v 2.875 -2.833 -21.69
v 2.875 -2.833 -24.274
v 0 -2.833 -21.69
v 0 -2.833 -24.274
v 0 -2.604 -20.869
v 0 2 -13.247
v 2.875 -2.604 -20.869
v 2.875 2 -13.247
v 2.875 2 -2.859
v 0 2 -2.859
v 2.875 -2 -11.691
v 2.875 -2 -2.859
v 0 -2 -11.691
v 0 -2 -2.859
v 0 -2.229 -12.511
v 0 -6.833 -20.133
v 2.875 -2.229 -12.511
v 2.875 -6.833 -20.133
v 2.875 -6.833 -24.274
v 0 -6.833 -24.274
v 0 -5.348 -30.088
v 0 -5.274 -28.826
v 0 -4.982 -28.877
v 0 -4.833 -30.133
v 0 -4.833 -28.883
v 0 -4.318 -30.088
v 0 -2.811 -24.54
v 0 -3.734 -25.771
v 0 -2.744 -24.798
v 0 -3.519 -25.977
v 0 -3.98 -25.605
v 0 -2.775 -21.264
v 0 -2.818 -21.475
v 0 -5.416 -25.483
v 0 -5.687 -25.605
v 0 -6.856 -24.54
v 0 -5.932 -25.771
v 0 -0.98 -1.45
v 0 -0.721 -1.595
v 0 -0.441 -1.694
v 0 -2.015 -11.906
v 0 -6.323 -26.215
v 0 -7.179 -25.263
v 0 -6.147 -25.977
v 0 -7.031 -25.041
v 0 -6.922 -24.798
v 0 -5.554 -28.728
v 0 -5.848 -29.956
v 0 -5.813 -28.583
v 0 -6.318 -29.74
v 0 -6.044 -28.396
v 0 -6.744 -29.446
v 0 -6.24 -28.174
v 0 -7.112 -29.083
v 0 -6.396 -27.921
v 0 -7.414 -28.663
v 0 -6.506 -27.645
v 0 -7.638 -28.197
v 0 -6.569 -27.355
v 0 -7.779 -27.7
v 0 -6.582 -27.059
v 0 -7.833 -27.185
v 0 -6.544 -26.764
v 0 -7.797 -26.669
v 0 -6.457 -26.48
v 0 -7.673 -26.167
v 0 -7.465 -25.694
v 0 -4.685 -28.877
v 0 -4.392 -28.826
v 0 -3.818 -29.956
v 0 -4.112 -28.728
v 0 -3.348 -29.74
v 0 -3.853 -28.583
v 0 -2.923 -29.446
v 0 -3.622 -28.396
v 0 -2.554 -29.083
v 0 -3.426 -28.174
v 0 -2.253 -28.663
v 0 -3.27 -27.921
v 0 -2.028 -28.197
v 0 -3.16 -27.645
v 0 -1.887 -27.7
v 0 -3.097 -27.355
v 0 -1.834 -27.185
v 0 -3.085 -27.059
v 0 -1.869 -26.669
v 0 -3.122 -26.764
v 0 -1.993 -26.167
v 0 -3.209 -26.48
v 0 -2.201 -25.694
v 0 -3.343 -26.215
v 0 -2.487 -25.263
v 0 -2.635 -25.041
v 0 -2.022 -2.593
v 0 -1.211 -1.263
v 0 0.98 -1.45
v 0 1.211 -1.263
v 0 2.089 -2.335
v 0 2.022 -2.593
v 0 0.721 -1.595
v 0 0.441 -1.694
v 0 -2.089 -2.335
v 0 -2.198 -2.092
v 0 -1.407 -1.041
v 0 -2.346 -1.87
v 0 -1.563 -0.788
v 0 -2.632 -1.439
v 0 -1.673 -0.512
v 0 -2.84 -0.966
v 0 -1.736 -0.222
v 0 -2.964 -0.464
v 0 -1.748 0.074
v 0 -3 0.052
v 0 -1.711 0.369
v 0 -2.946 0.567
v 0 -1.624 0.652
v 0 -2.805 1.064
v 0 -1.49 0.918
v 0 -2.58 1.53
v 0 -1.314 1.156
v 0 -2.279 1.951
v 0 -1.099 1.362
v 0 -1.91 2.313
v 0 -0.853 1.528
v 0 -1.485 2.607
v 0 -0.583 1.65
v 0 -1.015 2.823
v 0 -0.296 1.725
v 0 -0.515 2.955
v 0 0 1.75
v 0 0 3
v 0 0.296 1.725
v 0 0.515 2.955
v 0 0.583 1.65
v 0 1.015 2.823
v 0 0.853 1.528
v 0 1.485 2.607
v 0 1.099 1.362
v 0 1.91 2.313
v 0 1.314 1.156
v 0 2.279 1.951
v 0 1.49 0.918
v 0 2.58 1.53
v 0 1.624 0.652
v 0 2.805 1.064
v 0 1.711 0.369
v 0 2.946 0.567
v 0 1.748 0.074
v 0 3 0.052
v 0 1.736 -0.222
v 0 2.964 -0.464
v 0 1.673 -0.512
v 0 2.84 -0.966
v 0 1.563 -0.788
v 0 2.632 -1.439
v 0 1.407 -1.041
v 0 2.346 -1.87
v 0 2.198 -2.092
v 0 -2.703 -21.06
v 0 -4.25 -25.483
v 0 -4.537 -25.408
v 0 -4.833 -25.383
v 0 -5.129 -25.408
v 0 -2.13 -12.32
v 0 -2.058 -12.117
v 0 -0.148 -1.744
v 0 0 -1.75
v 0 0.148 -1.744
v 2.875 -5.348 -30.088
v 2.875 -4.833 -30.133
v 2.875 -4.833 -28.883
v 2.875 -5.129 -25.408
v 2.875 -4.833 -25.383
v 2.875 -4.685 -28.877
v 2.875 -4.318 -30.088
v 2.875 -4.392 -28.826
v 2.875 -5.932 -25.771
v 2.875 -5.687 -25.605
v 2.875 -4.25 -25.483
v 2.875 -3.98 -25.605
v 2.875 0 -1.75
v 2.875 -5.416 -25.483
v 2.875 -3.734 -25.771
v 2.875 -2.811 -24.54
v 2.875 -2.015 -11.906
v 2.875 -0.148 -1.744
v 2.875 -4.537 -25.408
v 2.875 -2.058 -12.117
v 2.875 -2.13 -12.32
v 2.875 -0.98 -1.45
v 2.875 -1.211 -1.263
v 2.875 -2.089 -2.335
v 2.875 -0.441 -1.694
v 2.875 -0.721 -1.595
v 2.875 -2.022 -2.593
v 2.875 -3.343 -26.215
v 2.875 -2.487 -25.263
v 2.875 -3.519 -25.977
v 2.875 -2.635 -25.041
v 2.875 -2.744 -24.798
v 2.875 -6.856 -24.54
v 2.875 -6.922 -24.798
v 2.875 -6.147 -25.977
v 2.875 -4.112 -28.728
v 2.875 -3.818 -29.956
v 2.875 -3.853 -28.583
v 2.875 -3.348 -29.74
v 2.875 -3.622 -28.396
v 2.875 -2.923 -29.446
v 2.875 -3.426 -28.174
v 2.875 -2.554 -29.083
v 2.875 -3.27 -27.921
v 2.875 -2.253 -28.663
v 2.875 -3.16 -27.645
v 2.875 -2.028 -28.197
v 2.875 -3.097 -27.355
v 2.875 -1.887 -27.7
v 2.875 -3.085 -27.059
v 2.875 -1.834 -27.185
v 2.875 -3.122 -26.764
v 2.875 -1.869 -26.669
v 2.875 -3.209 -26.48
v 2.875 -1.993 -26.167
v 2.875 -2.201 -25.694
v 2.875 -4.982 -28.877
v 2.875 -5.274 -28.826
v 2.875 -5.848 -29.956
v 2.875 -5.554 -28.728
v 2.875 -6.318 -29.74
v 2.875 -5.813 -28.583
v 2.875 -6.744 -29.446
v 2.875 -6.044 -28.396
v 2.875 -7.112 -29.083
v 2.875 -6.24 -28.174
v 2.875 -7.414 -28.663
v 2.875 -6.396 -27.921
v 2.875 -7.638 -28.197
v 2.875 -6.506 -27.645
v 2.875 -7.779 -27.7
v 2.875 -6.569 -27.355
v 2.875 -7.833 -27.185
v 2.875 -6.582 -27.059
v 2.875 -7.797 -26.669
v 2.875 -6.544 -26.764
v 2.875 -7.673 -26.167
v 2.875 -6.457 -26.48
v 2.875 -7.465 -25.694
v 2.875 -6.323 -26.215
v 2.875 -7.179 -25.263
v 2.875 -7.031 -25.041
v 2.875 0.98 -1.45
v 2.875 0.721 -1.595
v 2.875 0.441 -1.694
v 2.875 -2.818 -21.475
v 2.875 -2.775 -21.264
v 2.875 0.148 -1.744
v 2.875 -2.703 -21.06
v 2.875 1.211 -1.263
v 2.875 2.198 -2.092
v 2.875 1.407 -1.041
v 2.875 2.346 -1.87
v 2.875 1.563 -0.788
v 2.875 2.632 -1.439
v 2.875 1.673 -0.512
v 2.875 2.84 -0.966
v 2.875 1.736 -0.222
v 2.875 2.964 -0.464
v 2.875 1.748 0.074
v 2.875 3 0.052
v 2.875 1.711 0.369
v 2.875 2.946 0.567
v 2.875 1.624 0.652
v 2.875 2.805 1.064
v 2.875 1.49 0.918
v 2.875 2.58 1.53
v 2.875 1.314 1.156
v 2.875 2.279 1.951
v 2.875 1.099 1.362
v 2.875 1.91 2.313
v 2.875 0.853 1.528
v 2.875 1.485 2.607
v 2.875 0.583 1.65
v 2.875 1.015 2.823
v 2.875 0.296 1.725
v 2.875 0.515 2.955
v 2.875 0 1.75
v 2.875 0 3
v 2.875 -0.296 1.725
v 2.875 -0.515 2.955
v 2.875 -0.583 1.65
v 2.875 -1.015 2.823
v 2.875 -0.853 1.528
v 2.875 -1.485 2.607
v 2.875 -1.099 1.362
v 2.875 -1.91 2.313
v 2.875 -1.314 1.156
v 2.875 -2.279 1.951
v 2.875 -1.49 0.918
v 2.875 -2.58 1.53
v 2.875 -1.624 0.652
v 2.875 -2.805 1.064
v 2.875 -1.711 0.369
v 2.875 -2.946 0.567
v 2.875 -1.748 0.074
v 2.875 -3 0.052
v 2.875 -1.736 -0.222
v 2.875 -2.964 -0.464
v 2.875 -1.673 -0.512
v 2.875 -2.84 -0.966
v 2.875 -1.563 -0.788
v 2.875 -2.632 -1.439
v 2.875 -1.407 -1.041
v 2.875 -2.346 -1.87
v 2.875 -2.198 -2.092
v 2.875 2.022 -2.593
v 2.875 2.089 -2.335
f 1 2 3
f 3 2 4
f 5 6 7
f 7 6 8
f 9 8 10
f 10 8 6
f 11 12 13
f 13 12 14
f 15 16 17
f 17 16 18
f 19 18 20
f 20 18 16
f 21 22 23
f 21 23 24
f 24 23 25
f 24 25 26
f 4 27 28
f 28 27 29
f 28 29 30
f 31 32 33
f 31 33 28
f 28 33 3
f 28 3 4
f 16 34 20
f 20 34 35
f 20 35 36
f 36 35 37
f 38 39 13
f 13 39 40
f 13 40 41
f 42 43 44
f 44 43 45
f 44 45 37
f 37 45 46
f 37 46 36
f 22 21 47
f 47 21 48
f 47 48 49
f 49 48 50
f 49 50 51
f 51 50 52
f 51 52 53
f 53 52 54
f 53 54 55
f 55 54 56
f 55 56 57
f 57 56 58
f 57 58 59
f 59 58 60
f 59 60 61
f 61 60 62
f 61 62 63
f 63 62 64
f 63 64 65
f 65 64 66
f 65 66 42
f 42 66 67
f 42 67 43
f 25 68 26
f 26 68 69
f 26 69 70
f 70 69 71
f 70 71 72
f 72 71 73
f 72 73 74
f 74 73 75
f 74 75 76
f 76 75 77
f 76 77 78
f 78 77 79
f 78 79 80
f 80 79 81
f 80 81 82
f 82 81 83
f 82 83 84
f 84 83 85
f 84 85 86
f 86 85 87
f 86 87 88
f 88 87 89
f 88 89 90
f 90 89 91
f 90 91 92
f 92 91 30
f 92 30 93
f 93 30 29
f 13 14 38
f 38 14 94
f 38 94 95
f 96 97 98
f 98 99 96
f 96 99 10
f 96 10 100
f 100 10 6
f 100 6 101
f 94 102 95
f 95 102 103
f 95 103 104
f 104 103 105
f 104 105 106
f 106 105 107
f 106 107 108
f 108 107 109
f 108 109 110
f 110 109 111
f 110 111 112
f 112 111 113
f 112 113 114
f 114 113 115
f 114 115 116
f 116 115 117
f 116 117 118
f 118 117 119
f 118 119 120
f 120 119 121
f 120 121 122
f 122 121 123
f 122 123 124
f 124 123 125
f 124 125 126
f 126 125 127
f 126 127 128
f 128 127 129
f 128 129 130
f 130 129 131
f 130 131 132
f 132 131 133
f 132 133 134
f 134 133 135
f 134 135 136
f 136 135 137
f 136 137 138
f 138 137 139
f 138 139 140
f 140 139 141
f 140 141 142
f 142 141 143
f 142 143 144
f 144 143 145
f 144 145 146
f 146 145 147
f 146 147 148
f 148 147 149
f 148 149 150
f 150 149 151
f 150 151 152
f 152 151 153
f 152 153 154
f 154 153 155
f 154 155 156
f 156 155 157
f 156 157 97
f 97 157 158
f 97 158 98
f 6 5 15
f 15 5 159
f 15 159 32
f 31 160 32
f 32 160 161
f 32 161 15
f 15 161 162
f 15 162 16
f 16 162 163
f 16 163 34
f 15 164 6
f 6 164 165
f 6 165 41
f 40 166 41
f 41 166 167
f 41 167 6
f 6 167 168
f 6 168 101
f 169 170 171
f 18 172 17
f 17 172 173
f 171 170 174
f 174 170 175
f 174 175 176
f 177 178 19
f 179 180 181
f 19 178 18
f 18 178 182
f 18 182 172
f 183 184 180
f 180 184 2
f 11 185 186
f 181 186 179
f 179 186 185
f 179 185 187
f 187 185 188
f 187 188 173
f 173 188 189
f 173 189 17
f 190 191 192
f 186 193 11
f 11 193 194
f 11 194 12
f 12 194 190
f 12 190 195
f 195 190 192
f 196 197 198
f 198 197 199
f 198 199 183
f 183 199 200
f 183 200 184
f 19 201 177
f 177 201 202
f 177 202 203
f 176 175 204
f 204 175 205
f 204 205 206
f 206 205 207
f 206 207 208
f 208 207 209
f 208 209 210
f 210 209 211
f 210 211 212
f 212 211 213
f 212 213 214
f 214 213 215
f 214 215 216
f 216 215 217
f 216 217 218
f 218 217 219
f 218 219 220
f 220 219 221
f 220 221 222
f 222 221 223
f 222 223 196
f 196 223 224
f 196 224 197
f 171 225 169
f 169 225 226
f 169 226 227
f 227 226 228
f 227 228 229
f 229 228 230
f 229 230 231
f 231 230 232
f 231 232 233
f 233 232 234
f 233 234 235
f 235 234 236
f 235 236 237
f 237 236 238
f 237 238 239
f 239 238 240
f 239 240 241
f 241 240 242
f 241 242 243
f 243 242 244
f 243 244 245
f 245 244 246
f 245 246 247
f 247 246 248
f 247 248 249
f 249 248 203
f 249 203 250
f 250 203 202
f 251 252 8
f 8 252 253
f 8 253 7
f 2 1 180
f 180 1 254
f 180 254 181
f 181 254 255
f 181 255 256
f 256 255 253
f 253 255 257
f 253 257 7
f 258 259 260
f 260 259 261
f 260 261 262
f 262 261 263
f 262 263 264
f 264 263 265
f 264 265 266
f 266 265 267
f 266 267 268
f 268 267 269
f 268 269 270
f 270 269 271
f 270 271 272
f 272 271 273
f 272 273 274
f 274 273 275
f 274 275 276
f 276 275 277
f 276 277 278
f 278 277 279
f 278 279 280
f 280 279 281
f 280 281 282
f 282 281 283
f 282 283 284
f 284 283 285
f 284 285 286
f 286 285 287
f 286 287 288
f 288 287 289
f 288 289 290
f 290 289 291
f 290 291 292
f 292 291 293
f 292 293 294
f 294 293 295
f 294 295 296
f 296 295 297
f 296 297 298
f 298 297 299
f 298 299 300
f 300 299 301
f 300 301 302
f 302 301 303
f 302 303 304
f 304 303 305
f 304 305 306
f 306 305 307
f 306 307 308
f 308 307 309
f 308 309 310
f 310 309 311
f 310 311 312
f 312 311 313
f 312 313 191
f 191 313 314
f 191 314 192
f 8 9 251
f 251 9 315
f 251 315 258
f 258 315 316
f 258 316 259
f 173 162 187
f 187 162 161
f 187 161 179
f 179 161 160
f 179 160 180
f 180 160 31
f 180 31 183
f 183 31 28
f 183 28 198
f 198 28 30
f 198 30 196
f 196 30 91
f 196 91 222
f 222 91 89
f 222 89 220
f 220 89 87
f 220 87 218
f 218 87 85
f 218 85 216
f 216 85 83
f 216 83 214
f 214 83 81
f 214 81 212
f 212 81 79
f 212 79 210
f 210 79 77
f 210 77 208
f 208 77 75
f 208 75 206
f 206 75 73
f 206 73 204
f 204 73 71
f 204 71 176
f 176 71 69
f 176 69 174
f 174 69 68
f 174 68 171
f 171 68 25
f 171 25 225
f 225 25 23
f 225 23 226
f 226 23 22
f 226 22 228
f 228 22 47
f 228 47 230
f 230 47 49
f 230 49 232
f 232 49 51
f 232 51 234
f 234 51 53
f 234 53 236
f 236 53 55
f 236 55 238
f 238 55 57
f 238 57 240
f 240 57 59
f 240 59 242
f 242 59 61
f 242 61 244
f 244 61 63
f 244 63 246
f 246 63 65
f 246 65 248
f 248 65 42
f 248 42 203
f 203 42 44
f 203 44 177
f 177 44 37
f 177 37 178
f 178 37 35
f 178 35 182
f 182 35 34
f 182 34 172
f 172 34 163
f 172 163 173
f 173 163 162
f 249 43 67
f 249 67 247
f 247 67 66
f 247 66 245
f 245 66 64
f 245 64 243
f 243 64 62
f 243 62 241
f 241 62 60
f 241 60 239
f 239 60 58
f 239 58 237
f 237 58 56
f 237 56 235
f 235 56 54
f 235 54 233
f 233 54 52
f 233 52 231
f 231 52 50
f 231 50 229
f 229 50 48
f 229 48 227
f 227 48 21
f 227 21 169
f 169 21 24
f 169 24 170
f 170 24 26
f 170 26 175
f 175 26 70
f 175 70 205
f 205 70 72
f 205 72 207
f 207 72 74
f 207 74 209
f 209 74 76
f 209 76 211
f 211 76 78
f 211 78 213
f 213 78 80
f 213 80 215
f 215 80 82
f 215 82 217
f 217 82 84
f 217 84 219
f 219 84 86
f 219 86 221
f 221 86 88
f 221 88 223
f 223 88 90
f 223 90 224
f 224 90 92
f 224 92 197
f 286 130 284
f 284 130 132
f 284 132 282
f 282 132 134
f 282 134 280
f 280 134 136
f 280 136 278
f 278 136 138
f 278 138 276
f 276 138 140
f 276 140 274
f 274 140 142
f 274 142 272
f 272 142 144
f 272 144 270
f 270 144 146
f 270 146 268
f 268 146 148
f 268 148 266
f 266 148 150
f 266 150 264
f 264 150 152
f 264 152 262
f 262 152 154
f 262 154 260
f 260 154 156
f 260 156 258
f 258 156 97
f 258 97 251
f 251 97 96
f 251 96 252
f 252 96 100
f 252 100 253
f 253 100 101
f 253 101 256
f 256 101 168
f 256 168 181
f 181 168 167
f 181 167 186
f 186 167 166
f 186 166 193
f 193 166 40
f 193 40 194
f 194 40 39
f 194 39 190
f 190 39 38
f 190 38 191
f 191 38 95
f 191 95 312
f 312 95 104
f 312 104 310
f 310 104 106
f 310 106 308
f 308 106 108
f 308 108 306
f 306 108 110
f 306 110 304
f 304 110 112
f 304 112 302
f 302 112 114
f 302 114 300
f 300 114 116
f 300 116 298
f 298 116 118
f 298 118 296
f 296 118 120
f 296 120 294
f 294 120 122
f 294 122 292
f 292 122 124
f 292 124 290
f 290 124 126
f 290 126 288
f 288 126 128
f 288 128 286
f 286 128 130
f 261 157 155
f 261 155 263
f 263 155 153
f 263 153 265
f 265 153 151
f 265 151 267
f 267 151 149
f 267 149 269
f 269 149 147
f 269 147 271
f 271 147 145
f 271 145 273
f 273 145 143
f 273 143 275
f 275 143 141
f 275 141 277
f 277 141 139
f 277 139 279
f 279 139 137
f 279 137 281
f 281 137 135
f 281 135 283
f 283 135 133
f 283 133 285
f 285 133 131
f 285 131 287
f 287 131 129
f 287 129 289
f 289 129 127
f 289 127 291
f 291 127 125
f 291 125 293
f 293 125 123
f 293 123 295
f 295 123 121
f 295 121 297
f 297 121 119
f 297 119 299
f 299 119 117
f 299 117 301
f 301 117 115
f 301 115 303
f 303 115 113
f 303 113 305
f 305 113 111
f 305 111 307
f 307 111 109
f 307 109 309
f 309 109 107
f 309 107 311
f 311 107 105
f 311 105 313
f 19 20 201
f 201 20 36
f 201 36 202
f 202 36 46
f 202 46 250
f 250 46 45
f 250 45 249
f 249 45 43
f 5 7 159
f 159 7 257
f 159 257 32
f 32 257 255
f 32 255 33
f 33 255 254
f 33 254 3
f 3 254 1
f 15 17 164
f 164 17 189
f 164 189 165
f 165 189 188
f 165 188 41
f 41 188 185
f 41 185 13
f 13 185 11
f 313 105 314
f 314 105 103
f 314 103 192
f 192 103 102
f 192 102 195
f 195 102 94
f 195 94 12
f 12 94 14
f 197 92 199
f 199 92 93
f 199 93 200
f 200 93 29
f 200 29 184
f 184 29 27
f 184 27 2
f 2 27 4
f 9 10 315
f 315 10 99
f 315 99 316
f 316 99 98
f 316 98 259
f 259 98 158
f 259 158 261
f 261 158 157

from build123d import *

# Parameters (mm, degrees)
SKETCH2_R           = 1.75
BOSS_EXTRUDE1_DEPTH = 2.875
FILLET1_R           = 1.5875


with BuildPart() as part:
    # Sketch2 → Boss-Extrude1 (new body)
    with BuildSketch(Plane(origin=(0, 0, 0), x_dir=(0, 0, -1), z_dir=(1, 0, 0))):
        with BuildLine():
            Line((13.247387042, 2), (2.236067977, 2))
            ThreePointArc((2.236067977, 2), (-3, 0), (2.236067977, -2))
            Line((2.236067977, -2), (12.13290764, -2))
            Line((12.13290764, -2), (20.13290764, -6.833106971))
            Line((20.13290764, -6.833106971), (24.896839663, -6.833106971))
            ThreePointArc((24.896839663, -6.833106971), (30.13290764, -4.833106971), (24.896839663, -2.833106971))
            Line((24.896839663, -2.833106971), (21.247387042, -2.833106971))
            Line((21.247387042, -2.833106971), (13.247387042, 2))
        make_face()
        Circle(SKETCH2_R, mode=Mode.SUBTRACT)
        with Locations((27.13290764, -4.833106971)):
            Circle(SKETCH2_R, mode=Mode.SUBTRACT)
    extrude(amount=BOSS_EXTRUDE1_DEPTH)

    # Fillet1
    fillet1_edges = [part.edges().sort_by_distance(p)[0] for p in [
        (1.4375, -6.833106971, -24.896839663),
        (1.4375, -2, -12.13290764),
        (1.4375, -2, -2.236067977),
        (1.4375, 2, -2.236067977),
        (1.4375, -2.833106971, -21.247387042),
        (1.4375, -2.833106971, -24.896839663),
    ]]
    fillet(fillet1_edges, radius=FILLET1_R)


solid = part.part
